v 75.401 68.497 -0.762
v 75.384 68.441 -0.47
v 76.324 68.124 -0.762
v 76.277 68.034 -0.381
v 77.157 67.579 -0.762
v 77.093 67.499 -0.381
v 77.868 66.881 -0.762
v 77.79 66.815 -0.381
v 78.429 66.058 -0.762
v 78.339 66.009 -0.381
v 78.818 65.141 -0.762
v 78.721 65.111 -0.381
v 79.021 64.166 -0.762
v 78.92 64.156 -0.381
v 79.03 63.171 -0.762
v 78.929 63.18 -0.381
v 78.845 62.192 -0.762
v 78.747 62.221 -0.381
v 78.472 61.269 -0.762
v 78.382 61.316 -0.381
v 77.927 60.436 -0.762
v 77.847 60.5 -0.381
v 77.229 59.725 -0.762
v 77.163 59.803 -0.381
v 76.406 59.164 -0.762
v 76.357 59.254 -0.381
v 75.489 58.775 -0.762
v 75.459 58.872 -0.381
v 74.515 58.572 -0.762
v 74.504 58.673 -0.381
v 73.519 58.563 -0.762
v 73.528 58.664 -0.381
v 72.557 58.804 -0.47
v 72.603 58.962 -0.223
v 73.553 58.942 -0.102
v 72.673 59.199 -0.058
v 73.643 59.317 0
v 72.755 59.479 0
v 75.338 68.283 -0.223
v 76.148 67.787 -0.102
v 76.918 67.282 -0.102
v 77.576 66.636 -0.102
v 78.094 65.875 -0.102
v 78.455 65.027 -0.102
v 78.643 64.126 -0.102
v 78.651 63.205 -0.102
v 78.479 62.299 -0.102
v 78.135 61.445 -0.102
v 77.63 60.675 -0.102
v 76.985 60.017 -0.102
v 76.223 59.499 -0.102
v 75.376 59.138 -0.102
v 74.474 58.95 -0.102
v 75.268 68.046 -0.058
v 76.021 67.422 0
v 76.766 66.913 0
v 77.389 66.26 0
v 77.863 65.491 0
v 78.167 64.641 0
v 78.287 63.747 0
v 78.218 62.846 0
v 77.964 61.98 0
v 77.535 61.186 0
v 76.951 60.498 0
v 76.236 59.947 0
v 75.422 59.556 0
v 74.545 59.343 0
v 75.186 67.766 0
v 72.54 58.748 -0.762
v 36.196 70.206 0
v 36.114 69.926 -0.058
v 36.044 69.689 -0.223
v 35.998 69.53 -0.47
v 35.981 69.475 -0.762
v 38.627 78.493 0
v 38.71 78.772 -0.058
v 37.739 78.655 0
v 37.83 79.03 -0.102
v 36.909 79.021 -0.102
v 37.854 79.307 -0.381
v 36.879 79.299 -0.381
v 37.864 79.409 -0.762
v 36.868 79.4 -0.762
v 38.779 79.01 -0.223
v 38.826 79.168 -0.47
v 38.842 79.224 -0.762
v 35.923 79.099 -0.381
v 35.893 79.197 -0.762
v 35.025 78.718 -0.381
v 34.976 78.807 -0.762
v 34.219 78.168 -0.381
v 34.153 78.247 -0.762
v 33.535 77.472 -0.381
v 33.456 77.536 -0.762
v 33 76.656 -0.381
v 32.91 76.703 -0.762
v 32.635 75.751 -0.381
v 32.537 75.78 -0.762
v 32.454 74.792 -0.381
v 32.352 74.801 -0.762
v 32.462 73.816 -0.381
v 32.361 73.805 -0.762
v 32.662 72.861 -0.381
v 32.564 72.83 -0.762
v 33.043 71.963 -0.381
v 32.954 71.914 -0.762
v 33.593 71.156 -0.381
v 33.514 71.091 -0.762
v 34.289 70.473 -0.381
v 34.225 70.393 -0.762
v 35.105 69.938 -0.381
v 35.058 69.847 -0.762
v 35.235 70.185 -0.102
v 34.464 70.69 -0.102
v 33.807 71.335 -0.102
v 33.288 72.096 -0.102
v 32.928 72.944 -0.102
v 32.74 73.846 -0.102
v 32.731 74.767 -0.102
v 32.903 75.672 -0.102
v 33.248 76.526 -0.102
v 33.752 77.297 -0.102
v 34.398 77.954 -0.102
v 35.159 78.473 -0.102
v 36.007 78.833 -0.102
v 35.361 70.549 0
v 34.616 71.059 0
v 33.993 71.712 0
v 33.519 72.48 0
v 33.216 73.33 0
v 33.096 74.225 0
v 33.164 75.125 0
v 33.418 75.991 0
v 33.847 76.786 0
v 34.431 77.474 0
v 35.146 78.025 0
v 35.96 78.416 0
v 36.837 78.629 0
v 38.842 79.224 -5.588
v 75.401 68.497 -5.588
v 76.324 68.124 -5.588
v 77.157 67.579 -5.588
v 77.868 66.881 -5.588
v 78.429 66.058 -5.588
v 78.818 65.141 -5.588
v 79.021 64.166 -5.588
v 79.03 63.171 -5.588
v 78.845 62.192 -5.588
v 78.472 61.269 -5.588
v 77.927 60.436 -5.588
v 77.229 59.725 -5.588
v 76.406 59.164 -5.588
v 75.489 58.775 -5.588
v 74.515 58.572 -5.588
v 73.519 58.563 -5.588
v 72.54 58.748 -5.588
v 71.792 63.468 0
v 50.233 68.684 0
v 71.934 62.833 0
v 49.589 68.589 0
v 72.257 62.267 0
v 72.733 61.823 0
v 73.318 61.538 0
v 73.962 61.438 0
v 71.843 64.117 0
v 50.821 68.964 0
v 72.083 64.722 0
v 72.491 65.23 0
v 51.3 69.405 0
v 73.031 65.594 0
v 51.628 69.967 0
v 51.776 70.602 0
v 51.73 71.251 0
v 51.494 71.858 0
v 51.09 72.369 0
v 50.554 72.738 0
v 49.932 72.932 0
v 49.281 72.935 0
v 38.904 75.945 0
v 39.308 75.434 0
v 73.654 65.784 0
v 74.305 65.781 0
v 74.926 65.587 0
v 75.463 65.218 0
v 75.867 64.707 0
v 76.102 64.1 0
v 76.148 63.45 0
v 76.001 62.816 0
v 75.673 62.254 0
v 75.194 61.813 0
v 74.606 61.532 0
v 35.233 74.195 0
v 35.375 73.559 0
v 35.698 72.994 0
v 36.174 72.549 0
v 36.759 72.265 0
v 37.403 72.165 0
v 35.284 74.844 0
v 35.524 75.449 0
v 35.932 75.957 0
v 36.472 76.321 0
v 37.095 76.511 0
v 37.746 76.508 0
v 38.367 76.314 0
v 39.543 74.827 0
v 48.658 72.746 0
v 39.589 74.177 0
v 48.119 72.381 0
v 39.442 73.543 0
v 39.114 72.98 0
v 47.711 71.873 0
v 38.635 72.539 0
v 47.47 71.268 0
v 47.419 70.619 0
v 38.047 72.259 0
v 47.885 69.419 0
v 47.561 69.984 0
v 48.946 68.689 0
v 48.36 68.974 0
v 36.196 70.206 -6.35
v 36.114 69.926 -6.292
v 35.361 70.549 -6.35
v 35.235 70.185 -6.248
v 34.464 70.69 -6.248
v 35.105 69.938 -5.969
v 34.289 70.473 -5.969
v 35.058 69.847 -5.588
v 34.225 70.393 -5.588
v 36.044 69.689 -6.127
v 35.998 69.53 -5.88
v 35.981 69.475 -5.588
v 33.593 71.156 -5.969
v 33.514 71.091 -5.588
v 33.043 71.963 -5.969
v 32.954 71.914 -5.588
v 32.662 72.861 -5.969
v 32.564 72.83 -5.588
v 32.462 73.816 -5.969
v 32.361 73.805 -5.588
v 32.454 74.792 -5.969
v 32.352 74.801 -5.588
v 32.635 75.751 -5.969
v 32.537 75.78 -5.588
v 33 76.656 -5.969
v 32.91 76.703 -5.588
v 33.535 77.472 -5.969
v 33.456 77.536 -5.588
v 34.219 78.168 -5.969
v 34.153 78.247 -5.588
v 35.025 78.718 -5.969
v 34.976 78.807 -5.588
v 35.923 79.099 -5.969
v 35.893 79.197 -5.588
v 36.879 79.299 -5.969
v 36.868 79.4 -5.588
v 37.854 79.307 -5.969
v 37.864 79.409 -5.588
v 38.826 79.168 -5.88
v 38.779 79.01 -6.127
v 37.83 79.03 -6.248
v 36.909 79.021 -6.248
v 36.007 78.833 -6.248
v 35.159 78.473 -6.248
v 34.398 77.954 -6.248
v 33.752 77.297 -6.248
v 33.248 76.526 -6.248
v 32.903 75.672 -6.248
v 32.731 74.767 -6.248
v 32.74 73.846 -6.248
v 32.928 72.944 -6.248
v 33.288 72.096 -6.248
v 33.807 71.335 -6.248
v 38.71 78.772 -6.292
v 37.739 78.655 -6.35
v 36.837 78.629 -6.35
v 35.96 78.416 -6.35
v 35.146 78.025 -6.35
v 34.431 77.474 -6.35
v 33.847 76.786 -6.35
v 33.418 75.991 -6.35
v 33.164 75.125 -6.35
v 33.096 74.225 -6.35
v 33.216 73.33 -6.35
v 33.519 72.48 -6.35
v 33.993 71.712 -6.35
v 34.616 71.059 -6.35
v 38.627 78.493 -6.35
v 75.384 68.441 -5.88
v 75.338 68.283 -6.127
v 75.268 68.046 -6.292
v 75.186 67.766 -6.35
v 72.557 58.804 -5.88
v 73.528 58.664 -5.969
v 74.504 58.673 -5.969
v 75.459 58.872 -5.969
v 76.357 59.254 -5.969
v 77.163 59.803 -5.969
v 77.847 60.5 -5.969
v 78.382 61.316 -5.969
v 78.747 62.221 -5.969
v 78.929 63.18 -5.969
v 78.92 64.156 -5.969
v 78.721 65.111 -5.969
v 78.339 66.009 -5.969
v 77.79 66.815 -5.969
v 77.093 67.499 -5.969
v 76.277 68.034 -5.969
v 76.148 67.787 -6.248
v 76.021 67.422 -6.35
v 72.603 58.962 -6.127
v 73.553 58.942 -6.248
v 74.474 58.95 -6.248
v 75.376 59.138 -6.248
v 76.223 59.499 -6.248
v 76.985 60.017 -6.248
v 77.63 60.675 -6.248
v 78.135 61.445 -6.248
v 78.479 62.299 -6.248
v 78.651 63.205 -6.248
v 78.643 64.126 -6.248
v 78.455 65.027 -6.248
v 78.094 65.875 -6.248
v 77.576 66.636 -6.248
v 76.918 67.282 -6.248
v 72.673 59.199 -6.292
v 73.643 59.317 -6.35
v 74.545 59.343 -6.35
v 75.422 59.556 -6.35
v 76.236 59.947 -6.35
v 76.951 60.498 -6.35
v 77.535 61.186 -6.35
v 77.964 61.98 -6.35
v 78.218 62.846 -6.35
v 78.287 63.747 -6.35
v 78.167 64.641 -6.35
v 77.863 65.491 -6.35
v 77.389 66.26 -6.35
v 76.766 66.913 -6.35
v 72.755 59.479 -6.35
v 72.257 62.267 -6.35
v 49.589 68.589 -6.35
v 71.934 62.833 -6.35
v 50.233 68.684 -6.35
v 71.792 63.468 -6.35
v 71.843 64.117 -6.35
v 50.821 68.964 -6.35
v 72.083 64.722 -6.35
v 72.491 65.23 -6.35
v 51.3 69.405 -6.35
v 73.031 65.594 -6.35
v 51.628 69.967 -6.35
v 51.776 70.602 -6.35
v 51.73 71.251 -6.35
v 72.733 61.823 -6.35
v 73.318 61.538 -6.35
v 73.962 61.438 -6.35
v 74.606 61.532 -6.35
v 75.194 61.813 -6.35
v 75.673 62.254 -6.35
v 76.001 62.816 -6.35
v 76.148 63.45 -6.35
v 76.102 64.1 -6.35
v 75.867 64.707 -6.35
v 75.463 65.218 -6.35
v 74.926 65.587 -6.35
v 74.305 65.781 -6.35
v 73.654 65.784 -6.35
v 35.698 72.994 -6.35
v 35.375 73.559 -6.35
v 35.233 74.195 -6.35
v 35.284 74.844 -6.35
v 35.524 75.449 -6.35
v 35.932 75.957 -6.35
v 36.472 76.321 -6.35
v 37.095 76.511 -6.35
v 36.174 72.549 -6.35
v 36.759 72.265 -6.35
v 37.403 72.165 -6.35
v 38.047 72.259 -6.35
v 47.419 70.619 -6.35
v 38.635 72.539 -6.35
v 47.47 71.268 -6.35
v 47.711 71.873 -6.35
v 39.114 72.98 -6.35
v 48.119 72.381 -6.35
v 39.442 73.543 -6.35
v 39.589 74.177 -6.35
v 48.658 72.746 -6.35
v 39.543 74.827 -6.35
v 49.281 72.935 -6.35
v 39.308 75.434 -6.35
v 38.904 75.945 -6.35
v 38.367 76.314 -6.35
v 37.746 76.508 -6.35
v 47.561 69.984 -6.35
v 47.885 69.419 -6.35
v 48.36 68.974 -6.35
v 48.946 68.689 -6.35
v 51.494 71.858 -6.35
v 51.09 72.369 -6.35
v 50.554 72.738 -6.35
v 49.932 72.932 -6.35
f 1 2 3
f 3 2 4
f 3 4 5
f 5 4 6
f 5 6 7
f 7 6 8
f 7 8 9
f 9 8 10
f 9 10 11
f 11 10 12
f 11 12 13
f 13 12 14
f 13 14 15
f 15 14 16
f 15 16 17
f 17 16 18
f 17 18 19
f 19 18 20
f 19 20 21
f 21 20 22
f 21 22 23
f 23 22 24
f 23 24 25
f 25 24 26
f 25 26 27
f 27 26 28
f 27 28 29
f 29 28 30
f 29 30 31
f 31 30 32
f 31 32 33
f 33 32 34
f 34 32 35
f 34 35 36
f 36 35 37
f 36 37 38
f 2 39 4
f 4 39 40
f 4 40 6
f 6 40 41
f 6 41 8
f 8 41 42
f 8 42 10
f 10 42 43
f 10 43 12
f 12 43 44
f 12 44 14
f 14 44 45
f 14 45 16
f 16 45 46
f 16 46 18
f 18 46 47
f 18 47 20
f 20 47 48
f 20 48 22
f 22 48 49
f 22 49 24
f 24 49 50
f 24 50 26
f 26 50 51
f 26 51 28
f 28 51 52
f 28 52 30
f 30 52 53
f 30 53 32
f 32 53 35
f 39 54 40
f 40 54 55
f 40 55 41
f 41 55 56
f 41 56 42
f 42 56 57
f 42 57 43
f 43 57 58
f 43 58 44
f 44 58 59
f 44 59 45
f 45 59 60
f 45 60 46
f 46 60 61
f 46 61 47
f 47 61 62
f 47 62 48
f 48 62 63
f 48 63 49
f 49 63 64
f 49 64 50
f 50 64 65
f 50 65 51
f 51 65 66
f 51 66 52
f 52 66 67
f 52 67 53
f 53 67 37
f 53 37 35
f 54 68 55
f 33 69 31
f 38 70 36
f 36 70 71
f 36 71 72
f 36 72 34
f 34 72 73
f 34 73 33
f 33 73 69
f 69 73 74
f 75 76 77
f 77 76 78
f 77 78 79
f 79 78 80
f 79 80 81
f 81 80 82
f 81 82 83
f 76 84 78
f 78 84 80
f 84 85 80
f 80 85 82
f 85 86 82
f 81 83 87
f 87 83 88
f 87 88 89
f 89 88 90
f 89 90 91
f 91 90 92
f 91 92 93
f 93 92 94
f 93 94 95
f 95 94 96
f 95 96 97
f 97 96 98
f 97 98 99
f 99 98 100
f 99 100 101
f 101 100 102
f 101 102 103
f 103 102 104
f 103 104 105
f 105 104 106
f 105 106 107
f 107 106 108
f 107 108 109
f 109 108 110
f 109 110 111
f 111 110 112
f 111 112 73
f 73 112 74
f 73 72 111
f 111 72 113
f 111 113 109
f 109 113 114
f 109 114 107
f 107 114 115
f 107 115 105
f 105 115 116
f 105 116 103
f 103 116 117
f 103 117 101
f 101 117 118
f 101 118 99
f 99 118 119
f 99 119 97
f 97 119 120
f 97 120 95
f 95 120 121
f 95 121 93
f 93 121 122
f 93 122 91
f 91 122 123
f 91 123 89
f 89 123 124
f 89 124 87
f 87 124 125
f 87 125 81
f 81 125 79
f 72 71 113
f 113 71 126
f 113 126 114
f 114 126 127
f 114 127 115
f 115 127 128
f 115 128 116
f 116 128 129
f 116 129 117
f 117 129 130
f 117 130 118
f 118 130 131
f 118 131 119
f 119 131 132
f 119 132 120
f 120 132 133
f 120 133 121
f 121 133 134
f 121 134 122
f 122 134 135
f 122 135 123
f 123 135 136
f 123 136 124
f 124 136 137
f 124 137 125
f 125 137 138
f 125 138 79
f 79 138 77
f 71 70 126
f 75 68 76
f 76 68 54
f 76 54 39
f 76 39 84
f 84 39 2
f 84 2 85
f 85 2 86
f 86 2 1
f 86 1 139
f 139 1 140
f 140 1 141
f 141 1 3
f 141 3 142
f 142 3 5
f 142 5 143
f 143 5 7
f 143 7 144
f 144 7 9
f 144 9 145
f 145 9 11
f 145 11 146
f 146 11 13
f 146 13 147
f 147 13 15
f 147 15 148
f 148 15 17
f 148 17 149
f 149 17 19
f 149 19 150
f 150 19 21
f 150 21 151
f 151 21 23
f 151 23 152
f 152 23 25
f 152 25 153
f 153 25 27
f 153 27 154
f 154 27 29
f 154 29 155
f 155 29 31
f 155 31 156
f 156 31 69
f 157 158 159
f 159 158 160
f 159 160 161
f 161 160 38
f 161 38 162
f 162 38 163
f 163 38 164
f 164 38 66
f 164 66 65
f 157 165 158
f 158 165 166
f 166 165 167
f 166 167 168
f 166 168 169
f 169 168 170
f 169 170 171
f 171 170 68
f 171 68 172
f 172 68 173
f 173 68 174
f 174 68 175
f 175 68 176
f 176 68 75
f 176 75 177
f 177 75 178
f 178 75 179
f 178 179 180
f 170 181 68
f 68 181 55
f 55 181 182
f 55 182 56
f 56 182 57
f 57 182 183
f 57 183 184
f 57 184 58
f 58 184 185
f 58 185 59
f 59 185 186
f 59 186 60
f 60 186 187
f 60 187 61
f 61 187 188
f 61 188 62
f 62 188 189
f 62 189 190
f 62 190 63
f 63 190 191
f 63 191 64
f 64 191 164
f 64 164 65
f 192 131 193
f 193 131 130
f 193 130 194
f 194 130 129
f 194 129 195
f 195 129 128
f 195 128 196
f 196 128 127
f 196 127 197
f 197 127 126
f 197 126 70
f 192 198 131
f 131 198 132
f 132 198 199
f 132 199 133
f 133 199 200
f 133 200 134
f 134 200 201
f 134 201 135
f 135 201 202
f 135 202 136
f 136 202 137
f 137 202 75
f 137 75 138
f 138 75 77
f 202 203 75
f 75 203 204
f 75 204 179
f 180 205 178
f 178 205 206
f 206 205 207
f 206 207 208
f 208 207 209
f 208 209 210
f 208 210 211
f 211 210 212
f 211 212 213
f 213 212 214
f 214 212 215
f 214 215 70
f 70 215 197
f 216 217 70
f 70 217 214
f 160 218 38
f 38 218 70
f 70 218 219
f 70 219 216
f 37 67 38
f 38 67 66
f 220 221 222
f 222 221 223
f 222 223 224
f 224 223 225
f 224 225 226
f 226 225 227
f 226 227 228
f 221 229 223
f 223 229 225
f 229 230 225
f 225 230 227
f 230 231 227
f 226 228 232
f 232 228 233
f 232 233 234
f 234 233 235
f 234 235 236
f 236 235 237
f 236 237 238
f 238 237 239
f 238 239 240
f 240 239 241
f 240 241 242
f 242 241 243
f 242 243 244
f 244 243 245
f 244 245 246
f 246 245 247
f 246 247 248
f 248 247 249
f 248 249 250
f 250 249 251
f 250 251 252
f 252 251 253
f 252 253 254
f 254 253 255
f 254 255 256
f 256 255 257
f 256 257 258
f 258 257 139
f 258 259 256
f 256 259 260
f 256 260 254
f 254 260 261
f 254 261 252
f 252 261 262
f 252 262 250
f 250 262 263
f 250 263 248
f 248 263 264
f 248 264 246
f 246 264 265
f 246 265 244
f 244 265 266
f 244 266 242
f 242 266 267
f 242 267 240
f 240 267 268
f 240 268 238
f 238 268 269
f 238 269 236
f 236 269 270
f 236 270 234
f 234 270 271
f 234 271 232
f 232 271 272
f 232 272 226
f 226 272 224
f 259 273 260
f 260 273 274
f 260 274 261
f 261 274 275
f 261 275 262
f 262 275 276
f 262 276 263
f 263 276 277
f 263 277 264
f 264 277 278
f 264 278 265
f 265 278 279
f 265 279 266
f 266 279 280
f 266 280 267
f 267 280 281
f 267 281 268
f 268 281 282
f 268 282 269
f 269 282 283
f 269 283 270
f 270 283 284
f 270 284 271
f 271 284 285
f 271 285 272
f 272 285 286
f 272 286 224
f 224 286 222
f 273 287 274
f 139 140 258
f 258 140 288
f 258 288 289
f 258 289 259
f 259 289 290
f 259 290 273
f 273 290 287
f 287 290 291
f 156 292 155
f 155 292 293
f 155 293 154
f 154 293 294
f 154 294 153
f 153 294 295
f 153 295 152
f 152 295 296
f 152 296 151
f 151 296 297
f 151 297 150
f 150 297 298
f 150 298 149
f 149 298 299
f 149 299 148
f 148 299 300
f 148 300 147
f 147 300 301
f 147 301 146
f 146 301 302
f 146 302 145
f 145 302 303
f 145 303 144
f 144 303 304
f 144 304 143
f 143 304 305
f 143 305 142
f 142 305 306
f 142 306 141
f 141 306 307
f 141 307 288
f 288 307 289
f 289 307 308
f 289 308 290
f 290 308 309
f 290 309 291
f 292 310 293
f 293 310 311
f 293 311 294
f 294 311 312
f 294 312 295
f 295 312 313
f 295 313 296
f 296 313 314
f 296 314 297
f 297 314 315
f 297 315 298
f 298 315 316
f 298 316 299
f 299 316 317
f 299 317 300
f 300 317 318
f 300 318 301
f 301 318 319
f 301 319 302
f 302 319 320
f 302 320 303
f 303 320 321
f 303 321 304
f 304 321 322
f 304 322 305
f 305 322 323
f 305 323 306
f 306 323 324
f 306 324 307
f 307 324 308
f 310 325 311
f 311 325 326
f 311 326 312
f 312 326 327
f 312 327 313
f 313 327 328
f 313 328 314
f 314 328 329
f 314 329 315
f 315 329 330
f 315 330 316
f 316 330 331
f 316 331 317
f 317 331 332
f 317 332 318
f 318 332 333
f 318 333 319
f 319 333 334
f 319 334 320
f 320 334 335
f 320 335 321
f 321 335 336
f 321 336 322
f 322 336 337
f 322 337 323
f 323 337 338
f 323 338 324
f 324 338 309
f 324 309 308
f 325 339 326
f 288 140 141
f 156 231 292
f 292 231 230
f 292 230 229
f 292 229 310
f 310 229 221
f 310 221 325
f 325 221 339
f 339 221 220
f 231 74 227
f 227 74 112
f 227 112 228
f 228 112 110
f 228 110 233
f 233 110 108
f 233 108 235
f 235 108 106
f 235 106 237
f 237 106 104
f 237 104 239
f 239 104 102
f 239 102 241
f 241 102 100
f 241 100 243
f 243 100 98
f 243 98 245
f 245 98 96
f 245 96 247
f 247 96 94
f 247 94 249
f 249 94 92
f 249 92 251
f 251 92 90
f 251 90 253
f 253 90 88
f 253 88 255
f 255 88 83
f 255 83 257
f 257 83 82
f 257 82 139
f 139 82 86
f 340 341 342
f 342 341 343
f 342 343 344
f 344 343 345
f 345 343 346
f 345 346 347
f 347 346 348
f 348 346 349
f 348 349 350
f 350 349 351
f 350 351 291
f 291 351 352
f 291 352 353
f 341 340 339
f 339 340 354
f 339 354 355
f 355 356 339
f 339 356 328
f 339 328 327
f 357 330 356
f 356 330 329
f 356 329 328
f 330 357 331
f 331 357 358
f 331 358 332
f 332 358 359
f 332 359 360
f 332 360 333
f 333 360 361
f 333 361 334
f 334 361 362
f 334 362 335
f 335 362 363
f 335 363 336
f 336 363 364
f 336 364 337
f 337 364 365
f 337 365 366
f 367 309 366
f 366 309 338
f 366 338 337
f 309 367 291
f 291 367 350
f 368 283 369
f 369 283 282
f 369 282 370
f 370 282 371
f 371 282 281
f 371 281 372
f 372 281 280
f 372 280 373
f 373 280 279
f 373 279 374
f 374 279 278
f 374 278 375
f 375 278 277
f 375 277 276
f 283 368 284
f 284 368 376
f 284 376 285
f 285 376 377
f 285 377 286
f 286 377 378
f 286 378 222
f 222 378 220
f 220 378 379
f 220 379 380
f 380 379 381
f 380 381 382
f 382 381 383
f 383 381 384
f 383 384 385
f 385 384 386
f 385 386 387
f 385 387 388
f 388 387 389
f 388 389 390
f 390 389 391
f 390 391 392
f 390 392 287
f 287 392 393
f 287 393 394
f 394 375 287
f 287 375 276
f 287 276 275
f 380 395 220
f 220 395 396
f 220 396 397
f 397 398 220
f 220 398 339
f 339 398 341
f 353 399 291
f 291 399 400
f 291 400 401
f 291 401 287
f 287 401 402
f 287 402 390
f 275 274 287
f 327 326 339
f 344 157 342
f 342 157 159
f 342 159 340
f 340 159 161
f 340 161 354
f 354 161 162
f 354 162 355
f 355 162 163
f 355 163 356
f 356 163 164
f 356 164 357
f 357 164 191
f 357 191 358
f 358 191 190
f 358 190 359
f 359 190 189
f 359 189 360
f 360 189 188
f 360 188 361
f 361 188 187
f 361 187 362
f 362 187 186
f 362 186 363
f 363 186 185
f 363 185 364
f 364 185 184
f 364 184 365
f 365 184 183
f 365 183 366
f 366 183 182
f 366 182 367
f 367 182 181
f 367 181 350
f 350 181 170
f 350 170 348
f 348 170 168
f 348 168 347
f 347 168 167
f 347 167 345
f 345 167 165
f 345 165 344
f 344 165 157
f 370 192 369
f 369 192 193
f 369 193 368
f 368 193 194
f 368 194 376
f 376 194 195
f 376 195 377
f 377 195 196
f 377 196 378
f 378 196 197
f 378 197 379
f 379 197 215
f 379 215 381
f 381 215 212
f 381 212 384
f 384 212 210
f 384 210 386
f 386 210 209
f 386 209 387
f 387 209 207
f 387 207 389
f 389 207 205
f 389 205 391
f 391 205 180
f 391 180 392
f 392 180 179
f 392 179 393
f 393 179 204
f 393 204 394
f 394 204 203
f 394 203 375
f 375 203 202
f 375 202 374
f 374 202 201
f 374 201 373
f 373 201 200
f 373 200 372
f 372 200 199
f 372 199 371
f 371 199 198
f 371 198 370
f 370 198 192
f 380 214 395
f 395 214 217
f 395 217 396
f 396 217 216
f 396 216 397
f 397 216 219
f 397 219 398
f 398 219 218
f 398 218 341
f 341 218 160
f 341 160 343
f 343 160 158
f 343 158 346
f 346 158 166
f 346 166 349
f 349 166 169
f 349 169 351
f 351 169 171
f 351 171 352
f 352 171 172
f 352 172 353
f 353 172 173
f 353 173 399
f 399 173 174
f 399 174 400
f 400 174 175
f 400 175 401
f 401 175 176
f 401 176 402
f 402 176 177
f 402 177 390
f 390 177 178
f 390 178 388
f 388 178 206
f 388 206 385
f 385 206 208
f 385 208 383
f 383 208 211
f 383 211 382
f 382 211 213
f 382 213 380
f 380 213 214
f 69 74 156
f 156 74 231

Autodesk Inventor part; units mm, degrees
ref_plane "YZ Plane" through (0, 0, 0) normal (1, 0, 0) x (0, 1, 0)
ref_plane "XZ Plane" through (0, 0, 0) normal (0, 1, 0) x (-1, 0, 0)
ref_plane "Work Plane1" through (98.0034, 4.8347, 0) normal (0, 0, -1) x (-0.9323, -0.3616, 0)
sketch "Sketch1" plane through (98.0034, 4.8347, 0) normal (0, 0, -1) x (-0.9323, -0.3616, 0)
  circle A0 centre (1.1498, 63.5) radius 2.1844 projected
  circle A1 centre (21.2874, 78.9802) radius 2.1844
  circle A2 centre (31.3562, 86.7203) radius 2.1844 projected
  line L0 (1.1498, 63.5) -> (1.1498, 86.7203) construction
  line L1 (4.2458, 59.4725) -> (34.4523, 82.6927)
  line L2 (28.2602, 90.7478) -> (-1.9463, 67.5275)
  arc A3 (-1.9463, 67.5275) -> (4.2458, 59.4725) centre (1.1498, 63.5) ccw
  arc A4 (34.4523, 82.6927) -> (28.2602, 90.7478) centre (31.3562, 86.7203) ccw
  point P0 (93.1204, 30.9293)
  point P1 (1.1498, 94.7574)
  dimension "d0" = 10.16
  dimension "d4" = 12.7
extrude "Extrusion1" add sketch "Sketch1" along normal blind 6.35
fillet "Fillet1" radius 0.762 8 edges at (32.5372, 75.7795, -6.35) (57.1214, 73.8604, -6.35) (78.845, 62.1922, -6.35) (54.2609, 64.1113, -6.35) (78.845, 62.1922, 0) (54.2609, 64.1113, 0) (32.5372, 75.7795, 0) (57.1214, 73.8604, 0)
properties part number "RigidPieceFloat" material "Plastic, Opaque Black"
